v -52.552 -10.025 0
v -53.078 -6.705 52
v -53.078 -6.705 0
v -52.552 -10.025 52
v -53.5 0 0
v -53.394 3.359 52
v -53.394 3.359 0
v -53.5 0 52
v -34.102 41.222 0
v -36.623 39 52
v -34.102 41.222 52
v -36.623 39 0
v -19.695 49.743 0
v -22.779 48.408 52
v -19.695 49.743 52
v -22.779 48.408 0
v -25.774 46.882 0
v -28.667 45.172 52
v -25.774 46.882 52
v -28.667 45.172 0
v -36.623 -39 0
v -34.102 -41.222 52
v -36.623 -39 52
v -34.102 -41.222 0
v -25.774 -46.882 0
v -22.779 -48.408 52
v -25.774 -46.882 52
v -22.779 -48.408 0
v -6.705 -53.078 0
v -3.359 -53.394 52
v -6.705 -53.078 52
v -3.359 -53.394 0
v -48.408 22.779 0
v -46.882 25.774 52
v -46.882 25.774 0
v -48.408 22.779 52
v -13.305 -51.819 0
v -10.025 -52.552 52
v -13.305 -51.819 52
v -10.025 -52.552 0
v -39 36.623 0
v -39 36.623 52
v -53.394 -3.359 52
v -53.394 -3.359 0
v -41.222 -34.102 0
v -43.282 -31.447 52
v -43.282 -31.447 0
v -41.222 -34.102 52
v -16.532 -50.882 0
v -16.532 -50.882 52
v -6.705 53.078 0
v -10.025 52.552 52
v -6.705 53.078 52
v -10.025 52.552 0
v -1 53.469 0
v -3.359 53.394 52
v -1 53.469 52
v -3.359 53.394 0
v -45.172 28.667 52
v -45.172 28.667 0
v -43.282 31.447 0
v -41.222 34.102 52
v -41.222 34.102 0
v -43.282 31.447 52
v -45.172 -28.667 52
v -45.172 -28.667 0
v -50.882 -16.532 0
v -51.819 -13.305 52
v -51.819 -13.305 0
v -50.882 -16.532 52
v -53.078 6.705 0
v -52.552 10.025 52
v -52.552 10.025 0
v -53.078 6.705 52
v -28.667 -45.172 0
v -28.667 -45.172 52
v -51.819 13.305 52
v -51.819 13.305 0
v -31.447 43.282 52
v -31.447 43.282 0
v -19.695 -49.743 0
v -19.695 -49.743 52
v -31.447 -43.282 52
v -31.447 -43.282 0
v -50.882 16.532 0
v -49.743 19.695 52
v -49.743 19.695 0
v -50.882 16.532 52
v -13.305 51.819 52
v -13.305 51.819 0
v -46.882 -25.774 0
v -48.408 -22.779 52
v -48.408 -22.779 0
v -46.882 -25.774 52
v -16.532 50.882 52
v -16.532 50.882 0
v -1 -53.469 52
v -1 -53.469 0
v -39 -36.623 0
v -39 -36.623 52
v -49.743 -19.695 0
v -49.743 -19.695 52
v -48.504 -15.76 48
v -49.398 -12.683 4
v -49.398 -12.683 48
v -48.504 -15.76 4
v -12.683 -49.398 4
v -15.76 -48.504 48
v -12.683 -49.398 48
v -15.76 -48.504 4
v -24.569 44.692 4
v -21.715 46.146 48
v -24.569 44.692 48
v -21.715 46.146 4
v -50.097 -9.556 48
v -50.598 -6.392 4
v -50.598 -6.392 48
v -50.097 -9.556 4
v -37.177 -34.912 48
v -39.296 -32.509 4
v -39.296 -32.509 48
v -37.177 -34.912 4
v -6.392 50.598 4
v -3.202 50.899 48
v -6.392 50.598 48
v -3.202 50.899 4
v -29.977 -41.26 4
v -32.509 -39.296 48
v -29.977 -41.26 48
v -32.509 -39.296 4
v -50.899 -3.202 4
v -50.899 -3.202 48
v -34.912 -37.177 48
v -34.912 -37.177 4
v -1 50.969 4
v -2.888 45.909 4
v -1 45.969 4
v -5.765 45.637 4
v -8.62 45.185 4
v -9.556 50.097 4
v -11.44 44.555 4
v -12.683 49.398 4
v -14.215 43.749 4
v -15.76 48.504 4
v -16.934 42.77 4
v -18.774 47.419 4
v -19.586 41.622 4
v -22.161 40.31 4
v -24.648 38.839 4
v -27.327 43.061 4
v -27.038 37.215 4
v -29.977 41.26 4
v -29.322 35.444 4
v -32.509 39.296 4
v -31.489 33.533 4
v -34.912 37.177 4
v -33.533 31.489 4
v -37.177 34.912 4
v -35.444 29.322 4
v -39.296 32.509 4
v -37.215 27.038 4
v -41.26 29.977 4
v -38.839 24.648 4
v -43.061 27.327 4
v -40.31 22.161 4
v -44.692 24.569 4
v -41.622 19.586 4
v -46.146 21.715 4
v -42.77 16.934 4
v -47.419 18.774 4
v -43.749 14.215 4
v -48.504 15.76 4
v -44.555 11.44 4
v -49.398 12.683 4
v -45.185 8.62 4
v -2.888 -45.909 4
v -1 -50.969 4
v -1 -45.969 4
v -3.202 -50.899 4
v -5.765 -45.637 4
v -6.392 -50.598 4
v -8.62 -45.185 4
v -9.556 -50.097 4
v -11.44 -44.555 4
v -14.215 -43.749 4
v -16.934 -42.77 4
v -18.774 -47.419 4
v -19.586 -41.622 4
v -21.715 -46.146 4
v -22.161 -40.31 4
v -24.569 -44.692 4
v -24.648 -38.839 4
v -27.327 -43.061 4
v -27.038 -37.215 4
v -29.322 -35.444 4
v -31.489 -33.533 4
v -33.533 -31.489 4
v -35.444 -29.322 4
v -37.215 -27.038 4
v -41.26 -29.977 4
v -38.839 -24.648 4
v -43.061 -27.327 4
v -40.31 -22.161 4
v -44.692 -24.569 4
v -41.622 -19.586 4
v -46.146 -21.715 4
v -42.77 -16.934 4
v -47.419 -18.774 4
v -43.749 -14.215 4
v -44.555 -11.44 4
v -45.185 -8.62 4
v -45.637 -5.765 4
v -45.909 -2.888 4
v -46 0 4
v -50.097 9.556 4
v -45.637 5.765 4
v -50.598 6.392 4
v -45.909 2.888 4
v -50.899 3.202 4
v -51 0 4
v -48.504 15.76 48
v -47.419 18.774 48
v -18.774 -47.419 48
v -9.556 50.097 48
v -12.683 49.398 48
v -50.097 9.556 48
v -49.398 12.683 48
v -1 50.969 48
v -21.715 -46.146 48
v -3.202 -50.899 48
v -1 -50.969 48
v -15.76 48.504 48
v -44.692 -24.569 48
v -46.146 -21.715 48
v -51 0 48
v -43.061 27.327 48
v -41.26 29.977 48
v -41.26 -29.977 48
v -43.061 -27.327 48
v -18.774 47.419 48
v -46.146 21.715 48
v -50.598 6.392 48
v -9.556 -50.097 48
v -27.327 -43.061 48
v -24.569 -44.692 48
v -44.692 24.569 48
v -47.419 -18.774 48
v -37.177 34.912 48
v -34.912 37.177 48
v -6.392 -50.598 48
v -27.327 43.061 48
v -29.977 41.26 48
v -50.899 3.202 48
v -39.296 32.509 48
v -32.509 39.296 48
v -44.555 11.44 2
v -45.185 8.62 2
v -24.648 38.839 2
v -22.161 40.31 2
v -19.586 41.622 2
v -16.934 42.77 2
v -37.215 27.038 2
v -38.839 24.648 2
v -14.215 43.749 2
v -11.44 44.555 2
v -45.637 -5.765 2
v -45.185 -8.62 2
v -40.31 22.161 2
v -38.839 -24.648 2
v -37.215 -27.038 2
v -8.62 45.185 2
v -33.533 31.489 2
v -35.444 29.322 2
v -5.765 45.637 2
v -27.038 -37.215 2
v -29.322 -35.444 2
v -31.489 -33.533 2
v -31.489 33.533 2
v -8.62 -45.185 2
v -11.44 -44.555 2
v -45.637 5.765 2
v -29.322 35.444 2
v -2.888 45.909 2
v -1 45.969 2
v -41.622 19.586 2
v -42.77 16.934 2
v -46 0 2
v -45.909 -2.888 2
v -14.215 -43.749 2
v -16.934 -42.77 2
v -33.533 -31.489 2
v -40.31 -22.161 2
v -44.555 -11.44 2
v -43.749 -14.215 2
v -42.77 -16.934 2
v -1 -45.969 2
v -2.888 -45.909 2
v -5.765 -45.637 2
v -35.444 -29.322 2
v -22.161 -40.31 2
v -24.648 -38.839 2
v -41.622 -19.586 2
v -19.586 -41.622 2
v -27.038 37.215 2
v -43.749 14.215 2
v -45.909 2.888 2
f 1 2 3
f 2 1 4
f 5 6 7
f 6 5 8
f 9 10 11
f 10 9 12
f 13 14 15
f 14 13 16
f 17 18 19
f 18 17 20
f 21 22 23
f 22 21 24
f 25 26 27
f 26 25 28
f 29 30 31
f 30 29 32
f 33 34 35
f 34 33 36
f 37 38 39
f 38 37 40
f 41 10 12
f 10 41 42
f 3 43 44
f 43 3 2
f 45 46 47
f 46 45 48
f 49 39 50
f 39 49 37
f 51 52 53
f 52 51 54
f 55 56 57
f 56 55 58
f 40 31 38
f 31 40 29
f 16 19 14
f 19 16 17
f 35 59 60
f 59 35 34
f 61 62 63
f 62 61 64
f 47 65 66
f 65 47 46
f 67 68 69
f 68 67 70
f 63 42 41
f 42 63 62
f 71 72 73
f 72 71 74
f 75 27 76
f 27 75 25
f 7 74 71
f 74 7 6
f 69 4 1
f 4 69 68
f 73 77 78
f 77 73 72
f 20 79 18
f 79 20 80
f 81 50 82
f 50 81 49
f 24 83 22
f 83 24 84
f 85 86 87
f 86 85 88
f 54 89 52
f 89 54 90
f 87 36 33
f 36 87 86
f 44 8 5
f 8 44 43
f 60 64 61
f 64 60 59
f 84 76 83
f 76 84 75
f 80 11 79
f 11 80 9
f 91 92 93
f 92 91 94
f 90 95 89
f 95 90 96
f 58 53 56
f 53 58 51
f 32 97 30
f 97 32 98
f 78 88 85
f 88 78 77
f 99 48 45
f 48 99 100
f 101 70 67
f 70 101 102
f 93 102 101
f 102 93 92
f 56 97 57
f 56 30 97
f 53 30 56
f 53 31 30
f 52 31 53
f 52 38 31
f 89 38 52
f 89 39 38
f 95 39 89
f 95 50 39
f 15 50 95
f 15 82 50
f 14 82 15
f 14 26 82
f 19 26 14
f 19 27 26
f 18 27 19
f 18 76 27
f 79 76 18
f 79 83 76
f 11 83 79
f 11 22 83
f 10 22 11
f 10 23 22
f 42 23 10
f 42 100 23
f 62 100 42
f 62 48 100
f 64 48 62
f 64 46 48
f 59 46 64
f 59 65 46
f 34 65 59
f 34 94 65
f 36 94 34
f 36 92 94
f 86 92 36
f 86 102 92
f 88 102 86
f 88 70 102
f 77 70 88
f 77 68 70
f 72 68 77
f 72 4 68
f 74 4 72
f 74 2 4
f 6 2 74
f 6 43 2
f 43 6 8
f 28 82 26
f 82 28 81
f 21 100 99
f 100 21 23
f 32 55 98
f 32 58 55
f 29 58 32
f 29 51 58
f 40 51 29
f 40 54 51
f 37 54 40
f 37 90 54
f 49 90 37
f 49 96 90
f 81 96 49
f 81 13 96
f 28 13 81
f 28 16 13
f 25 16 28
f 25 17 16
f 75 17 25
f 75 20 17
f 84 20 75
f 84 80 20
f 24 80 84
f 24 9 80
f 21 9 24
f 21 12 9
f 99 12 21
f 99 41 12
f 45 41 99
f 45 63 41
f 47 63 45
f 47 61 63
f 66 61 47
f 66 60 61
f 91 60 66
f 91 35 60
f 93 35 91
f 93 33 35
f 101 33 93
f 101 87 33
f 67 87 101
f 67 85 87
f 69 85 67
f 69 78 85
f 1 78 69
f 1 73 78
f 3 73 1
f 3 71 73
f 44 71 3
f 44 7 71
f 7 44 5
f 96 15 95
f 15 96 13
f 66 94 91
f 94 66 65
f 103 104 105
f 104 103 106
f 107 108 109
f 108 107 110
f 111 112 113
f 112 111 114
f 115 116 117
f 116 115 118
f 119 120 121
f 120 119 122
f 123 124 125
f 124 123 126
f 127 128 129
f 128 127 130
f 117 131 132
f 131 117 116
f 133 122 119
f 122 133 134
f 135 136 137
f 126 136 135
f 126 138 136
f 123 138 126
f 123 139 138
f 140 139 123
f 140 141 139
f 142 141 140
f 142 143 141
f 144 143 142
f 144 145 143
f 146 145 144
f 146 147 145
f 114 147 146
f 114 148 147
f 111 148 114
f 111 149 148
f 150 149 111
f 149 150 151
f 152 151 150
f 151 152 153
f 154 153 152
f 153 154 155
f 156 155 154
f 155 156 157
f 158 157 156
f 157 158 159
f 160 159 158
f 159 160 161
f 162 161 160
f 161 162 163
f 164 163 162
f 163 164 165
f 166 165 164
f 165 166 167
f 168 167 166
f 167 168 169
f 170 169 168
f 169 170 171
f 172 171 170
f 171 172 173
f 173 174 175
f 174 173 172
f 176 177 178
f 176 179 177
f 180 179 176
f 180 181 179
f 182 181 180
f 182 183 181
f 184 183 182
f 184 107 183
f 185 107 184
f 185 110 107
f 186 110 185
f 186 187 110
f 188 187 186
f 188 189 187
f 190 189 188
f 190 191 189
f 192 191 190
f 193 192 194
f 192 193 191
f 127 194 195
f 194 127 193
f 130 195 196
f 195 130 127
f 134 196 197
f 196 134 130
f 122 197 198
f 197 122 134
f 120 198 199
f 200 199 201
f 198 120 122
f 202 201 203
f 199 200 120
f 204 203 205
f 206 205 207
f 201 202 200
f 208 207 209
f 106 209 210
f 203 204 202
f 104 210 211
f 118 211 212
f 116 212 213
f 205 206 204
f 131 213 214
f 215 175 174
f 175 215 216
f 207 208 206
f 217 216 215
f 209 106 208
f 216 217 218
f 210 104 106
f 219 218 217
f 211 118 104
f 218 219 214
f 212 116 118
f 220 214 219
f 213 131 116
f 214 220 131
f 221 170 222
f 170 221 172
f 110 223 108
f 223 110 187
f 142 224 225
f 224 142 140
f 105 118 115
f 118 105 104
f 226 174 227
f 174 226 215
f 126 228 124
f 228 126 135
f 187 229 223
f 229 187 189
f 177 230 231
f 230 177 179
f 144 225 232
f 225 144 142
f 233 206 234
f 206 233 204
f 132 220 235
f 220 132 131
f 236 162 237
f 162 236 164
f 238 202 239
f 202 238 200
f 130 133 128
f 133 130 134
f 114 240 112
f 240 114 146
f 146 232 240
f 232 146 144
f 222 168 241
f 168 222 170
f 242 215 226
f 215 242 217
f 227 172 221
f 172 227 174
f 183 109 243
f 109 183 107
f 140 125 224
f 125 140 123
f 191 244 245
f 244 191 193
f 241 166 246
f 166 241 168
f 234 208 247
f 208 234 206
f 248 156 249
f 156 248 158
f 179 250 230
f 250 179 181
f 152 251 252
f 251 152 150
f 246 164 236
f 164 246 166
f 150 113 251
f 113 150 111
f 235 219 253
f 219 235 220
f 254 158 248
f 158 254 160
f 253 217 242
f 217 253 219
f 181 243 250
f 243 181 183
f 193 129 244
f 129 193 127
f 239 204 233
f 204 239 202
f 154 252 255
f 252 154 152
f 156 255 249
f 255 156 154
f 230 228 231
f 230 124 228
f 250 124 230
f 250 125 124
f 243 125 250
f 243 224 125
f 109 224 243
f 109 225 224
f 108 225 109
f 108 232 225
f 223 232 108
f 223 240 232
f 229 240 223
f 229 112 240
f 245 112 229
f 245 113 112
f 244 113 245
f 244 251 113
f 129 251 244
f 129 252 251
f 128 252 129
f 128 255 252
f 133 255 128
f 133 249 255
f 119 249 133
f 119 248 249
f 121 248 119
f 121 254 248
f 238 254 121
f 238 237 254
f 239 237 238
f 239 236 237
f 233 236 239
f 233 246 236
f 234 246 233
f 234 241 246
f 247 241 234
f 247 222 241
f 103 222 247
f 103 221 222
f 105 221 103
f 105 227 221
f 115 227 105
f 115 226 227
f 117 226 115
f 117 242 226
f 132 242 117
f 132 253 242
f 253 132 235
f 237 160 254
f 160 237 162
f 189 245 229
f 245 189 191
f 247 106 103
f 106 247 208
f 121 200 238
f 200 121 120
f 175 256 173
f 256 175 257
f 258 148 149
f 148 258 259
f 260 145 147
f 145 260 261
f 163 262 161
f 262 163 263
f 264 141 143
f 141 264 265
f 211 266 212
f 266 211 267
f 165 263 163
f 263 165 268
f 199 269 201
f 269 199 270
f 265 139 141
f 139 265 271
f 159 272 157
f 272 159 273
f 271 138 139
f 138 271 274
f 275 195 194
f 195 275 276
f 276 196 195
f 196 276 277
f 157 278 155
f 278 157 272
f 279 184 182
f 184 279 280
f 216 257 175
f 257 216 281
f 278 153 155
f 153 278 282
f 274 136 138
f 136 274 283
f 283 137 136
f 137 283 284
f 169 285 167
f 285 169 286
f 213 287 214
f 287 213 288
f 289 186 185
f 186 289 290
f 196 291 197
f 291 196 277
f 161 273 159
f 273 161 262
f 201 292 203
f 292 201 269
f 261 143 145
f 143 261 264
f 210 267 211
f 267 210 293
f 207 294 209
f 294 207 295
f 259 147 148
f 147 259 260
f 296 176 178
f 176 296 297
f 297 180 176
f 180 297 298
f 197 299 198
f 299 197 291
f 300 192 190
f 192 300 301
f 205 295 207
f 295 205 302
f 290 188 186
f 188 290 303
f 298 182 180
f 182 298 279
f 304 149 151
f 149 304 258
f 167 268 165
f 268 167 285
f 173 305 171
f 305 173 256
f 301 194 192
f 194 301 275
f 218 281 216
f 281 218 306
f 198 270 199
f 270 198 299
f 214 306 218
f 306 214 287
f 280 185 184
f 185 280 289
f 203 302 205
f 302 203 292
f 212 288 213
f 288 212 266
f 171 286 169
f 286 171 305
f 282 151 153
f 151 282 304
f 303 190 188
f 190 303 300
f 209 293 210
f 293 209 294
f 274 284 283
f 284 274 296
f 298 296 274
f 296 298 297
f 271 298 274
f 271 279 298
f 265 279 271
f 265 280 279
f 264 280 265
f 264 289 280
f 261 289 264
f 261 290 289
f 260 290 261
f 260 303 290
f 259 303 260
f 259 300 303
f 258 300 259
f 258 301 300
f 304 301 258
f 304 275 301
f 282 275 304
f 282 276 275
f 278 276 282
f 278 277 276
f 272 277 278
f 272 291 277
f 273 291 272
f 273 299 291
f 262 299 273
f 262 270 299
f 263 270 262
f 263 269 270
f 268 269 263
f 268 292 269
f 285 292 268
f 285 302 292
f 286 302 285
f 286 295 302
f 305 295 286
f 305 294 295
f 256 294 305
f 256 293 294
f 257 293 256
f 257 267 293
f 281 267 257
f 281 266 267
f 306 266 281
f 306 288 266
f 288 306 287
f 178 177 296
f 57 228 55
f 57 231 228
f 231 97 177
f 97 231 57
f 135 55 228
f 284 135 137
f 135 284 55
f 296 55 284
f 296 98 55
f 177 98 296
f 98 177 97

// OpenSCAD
$fn = 100;


difference() {
    cylinder(h=52, d = 107);
    
    translate([0, 0, 4])
    cylinder(h=44, d = 102);

    translate([0, 0, 2])
    cylinder(h=3, d = 92);
    

    color("red")
    translate([107/2, 0, 26])
    cube([109, 109, 54], center=true);    

}
